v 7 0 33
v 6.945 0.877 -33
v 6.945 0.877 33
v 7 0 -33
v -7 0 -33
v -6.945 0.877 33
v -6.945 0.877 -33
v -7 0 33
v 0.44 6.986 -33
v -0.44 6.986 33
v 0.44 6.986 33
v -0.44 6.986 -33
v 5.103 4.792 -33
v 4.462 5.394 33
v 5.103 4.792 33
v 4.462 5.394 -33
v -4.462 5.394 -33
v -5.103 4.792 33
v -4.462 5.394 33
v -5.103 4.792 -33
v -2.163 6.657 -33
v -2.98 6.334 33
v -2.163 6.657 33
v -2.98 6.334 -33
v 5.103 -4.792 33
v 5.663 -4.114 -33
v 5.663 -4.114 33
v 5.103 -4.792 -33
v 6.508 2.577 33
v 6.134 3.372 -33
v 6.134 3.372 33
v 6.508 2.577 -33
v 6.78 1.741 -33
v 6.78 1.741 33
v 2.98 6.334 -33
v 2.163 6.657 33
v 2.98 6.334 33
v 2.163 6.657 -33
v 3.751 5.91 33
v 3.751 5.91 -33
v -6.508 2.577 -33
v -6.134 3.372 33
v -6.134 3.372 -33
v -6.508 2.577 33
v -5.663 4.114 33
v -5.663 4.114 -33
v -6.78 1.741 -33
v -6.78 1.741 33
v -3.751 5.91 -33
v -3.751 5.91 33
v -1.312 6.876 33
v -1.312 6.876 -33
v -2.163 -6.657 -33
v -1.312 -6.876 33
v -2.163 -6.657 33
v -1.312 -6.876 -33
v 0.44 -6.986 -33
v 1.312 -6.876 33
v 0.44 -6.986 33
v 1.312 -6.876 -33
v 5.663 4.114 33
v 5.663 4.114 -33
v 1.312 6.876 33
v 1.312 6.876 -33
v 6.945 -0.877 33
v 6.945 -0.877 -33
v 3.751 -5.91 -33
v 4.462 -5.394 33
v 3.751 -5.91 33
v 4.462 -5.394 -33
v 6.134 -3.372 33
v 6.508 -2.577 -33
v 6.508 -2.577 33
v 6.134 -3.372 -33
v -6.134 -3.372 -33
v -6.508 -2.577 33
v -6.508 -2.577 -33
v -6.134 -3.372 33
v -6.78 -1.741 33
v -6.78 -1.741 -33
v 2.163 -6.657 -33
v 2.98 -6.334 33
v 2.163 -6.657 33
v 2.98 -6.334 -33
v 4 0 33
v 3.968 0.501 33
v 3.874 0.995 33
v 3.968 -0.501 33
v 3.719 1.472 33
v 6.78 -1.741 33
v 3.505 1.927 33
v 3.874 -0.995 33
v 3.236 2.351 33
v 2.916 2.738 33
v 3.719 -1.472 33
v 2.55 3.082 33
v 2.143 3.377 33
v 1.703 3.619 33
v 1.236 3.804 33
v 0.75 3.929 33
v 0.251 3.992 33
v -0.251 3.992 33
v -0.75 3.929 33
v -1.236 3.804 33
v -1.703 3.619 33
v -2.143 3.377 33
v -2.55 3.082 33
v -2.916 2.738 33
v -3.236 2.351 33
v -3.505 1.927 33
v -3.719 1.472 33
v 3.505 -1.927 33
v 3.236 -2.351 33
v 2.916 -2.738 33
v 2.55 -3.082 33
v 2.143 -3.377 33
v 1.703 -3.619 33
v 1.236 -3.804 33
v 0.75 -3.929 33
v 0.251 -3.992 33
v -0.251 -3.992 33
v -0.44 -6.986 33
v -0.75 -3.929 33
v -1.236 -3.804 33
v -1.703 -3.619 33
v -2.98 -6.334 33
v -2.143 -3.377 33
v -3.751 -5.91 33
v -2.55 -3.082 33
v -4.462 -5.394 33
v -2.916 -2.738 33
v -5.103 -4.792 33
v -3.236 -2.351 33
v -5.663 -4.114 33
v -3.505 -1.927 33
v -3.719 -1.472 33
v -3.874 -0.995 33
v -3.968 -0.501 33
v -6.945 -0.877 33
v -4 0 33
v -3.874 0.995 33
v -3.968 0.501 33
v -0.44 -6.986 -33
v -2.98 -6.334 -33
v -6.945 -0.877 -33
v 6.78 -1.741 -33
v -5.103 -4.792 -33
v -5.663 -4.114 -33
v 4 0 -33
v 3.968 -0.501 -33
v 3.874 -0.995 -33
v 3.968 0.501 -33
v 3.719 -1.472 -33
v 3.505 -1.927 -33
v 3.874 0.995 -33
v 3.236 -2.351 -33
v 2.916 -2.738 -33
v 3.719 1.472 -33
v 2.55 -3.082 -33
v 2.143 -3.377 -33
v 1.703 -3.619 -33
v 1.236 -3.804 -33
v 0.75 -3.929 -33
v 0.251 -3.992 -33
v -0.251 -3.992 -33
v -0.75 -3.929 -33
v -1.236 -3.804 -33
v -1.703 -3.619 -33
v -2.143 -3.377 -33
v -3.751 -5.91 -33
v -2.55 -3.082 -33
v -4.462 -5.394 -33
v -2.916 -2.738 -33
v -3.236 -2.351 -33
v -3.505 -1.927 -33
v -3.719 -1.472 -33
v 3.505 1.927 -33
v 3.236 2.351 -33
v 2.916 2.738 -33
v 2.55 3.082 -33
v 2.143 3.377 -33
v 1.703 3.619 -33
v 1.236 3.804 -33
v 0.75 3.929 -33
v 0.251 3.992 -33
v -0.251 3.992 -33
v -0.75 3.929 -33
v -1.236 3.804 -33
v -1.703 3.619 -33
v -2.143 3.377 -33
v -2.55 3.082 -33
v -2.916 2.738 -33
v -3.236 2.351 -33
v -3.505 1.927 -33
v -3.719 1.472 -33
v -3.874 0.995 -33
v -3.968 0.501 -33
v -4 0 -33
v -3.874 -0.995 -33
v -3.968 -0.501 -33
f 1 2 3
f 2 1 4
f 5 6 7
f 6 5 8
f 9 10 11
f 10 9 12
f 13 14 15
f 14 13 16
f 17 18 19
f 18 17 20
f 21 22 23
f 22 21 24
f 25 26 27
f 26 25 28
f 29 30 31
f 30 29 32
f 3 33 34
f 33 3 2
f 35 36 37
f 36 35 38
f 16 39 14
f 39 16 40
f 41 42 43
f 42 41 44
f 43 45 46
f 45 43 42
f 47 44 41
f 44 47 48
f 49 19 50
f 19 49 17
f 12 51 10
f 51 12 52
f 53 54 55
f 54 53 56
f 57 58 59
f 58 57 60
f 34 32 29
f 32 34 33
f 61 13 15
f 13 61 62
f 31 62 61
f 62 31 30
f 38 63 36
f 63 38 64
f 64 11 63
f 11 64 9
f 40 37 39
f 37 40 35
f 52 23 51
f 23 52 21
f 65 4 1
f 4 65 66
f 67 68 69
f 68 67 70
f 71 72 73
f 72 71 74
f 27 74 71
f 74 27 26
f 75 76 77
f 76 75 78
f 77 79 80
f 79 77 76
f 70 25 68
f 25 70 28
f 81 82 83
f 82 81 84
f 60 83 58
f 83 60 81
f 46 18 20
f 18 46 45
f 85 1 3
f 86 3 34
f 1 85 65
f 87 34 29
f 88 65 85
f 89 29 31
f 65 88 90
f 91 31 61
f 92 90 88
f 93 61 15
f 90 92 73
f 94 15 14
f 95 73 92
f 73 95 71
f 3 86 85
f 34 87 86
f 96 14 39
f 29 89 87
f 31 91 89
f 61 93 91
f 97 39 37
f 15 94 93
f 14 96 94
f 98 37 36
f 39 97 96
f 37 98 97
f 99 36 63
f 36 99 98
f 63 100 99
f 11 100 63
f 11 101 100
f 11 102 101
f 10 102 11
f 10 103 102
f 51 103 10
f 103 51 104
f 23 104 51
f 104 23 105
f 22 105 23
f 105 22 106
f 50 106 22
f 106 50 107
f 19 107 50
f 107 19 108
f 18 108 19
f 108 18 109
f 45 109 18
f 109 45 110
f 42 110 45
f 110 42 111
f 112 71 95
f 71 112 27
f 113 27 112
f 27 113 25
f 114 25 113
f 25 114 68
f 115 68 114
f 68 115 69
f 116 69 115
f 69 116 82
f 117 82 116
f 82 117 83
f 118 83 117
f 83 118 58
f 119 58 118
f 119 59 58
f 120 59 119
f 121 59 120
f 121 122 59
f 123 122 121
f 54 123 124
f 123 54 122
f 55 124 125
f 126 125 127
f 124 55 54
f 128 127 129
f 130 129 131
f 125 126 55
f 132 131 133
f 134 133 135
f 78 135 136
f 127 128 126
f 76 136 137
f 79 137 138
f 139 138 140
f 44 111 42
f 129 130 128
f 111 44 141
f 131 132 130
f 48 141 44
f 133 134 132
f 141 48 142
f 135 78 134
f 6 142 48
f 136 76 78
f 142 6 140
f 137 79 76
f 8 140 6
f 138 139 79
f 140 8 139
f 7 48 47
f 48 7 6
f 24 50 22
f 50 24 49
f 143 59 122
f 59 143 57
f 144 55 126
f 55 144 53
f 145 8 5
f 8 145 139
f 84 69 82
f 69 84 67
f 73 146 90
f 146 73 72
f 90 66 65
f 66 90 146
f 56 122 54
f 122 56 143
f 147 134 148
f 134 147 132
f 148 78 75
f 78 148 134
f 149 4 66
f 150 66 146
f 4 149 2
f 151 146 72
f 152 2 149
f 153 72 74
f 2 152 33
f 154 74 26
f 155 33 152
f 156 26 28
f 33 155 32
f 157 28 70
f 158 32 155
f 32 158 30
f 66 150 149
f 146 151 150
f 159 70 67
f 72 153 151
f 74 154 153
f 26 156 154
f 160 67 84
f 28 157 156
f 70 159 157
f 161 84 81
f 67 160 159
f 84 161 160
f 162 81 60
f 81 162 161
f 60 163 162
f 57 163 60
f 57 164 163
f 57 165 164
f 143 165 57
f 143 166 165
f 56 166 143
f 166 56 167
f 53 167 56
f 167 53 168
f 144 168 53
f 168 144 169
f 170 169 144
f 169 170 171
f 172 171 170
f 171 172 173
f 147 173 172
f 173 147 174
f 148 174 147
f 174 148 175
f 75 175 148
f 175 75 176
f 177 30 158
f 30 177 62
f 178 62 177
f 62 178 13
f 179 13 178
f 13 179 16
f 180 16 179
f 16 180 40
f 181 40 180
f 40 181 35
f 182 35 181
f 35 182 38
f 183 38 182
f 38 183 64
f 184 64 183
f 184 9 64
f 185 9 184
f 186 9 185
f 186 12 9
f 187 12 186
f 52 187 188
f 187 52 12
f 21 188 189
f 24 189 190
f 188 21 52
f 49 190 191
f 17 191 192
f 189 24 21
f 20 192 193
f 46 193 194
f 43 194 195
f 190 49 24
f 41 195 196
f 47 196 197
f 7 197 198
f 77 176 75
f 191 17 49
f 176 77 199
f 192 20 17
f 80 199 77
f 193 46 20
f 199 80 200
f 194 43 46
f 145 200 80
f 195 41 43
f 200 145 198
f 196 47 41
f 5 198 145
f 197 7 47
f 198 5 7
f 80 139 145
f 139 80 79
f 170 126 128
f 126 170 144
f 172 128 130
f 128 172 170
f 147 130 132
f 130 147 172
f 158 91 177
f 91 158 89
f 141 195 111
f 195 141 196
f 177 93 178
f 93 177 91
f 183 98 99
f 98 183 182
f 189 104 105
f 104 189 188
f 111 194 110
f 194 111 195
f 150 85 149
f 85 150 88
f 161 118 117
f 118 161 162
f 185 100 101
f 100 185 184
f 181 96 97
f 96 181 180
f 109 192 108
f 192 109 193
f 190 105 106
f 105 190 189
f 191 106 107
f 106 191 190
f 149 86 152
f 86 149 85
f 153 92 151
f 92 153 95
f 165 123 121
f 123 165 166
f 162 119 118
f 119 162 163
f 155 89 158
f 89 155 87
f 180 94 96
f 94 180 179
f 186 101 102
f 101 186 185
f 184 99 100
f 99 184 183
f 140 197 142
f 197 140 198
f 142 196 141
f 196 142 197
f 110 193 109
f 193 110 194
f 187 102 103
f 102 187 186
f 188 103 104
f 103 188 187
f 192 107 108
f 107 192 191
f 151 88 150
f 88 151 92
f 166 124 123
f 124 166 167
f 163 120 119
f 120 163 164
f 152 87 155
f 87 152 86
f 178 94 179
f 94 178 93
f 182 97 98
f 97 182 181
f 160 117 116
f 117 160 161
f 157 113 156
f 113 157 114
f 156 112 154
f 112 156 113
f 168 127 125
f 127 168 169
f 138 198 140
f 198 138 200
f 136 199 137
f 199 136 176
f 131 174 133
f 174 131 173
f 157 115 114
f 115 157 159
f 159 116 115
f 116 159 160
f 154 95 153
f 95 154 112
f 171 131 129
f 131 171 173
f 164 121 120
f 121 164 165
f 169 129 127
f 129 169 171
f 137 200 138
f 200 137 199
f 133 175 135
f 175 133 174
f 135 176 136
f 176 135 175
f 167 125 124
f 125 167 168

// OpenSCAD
$fn = 50;


difference() {
	union() {
		translate(v = [0, 0, -33.0000000000]) {
			cylinder(h = 66, r = 7.0000000000);
		}
	}
	union() {
		translate(v = [0, 0, -100.0000000000]) {
			cylinder(h = 200, r = 4.0000000000);
		}
	}
}
